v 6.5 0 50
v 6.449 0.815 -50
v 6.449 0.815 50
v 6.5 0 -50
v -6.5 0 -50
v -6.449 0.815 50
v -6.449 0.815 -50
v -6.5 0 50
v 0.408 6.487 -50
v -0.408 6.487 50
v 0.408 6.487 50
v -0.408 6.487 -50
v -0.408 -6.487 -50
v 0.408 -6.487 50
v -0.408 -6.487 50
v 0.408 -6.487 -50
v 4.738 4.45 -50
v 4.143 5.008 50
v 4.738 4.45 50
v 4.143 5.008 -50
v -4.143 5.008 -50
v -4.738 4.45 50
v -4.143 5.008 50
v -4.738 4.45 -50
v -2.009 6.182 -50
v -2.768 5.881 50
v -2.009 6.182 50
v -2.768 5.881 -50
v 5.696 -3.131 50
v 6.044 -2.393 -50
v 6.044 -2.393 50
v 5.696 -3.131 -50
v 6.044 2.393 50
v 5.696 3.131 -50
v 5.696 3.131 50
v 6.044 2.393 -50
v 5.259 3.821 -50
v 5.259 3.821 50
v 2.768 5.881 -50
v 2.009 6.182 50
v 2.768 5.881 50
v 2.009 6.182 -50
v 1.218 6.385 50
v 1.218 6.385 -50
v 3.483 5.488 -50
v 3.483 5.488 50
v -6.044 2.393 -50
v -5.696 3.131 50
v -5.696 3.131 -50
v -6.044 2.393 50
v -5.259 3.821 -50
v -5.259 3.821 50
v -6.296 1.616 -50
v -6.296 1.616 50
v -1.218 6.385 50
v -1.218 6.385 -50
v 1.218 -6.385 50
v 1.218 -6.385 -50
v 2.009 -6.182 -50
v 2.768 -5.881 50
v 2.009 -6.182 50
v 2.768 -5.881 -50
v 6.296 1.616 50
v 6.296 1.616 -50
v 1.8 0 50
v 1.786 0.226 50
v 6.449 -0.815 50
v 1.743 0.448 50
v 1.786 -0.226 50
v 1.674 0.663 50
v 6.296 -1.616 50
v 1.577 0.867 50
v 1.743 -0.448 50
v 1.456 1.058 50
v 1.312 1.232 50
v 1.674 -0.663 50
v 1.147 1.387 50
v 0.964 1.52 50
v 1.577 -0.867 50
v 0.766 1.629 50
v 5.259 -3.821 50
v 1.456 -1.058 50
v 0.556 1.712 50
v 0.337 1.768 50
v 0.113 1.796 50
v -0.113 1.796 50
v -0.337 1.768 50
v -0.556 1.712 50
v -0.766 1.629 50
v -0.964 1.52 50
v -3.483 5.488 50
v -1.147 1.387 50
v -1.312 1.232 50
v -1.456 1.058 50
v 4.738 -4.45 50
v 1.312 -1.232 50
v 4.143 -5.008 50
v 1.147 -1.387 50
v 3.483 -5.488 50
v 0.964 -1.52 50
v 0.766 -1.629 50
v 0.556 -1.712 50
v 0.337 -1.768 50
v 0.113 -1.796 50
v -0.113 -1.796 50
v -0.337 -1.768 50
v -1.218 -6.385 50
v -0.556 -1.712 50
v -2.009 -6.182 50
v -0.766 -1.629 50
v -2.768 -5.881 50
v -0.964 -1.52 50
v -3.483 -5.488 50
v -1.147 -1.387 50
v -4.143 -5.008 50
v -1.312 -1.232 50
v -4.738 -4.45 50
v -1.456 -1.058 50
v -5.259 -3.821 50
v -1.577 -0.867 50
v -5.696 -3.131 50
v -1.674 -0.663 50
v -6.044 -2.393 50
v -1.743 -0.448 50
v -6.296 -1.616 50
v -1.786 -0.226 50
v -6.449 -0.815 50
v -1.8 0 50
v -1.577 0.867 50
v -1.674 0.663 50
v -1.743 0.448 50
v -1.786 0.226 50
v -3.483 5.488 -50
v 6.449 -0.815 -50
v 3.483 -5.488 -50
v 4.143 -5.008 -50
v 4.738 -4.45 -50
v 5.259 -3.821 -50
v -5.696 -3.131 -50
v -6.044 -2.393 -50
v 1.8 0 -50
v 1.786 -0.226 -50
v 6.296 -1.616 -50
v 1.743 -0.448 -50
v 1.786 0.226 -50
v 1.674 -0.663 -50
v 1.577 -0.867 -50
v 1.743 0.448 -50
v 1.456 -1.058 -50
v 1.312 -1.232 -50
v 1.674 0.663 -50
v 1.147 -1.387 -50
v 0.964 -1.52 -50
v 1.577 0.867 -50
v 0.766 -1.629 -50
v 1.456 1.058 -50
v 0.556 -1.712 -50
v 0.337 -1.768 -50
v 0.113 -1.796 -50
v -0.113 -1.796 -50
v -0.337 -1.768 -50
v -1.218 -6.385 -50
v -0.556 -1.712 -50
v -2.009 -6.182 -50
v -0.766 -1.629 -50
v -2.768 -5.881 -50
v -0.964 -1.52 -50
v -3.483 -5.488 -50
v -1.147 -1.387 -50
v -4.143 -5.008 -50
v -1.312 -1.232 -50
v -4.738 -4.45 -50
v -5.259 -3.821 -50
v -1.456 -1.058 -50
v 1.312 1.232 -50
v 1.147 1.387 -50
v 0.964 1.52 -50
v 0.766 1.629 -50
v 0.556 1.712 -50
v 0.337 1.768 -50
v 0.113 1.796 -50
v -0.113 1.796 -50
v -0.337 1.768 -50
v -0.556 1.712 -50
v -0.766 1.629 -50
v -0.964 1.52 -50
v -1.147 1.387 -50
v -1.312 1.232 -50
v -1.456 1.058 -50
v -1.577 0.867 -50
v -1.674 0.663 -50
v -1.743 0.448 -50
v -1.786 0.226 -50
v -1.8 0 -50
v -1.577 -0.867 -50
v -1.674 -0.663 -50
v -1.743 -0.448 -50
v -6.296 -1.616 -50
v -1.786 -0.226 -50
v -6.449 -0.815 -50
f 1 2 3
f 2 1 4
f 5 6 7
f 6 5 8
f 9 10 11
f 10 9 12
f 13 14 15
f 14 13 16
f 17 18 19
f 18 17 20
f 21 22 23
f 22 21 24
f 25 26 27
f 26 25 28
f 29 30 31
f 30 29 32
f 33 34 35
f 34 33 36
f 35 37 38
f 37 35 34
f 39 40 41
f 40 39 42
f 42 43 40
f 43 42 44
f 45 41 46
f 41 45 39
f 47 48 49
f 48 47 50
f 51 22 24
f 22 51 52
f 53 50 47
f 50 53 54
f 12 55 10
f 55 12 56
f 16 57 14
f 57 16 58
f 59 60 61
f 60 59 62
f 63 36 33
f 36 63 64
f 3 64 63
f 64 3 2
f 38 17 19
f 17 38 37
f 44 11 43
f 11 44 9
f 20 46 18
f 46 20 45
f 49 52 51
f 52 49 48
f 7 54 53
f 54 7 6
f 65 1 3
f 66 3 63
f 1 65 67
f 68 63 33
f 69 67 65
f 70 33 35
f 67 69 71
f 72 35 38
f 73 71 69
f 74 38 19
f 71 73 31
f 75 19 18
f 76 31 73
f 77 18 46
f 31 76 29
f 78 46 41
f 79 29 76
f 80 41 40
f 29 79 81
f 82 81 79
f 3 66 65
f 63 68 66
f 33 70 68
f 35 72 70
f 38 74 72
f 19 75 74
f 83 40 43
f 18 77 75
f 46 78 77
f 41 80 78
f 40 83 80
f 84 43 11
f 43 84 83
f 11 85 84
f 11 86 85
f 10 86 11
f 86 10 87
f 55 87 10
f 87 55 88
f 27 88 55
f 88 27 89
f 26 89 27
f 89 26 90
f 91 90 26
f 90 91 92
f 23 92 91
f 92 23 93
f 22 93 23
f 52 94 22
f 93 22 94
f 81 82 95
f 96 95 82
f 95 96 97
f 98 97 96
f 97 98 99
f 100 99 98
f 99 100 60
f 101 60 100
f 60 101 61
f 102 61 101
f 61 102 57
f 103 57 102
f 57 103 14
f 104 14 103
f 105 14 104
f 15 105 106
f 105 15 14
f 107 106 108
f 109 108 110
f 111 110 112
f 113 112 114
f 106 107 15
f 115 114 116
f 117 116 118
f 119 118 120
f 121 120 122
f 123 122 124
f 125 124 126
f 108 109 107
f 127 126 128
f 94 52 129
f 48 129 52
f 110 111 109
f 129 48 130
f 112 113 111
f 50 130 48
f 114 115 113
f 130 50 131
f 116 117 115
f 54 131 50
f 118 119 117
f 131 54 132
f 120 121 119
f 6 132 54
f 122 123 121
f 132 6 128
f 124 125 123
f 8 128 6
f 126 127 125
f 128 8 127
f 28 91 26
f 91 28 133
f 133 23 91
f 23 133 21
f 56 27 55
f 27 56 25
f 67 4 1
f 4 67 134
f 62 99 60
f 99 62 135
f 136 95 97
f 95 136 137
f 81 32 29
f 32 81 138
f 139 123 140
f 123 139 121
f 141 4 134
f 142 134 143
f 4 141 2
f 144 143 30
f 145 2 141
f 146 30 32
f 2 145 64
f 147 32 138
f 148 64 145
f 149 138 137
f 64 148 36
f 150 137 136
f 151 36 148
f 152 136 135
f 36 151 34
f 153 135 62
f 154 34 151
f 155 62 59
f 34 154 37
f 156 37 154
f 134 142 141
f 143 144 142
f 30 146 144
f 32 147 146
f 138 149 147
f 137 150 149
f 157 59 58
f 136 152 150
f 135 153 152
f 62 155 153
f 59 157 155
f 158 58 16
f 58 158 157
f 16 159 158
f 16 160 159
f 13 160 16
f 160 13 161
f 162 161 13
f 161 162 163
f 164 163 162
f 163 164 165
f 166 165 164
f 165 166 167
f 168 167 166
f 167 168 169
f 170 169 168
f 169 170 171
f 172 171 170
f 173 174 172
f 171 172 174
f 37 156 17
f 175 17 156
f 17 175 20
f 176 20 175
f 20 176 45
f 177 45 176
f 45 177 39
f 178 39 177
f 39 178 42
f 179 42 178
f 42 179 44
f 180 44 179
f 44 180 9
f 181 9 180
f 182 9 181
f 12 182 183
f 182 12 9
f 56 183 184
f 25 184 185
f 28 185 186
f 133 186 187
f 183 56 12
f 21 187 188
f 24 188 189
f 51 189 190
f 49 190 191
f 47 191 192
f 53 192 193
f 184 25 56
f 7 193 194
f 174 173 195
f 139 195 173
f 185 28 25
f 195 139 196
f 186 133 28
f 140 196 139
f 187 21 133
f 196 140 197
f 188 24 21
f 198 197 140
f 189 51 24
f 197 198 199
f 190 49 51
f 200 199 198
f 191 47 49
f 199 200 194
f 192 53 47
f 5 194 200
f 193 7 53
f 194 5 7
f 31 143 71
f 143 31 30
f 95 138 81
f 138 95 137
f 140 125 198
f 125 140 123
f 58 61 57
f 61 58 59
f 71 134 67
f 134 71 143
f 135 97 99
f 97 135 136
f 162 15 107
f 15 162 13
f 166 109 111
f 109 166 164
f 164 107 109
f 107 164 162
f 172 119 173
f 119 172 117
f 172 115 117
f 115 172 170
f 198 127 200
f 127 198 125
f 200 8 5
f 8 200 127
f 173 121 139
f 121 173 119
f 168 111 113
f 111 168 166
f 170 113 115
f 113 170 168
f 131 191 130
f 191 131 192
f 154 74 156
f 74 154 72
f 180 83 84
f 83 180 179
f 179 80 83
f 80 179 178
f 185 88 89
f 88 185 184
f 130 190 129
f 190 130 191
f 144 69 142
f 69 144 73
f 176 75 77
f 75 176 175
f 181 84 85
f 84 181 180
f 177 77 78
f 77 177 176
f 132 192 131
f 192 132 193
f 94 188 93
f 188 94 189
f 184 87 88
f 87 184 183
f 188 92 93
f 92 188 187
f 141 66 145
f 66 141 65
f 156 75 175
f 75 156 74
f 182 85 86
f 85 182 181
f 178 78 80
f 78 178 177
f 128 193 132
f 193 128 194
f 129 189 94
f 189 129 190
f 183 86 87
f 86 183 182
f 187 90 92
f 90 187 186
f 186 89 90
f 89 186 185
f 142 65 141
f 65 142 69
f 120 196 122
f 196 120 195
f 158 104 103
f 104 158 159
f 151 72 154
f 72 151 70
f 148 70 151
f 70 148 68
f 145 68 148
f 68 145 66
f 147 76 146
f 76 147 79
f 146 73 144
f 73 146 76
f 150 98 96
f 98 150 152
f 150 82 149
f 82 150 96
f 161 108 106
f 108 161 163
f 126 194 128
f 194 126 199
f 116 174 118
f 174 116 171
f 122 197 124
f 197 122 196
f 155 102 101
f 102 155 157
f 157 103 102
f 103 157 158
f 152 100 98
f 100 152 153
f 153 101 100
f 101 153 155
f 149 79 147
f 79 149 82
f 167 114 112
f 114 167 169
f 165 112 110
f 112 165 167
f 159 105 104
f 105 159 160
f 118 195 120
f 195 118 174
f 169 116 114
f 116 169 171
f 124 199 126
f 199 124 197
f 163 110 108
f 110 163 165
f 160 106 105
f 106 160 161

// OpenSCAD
$fn = 50;


difference() {
	union() {
		translate(v = [0, 0, -50.0000000000]) {
			cylinder(h = 100, r = 6.5000000000);
		}
	}
	union() {
		translate(v = [0, 0, -100.0000000000]) {
			cylinder(h = 200, r = 1.8000000000);
		}
	}
}
